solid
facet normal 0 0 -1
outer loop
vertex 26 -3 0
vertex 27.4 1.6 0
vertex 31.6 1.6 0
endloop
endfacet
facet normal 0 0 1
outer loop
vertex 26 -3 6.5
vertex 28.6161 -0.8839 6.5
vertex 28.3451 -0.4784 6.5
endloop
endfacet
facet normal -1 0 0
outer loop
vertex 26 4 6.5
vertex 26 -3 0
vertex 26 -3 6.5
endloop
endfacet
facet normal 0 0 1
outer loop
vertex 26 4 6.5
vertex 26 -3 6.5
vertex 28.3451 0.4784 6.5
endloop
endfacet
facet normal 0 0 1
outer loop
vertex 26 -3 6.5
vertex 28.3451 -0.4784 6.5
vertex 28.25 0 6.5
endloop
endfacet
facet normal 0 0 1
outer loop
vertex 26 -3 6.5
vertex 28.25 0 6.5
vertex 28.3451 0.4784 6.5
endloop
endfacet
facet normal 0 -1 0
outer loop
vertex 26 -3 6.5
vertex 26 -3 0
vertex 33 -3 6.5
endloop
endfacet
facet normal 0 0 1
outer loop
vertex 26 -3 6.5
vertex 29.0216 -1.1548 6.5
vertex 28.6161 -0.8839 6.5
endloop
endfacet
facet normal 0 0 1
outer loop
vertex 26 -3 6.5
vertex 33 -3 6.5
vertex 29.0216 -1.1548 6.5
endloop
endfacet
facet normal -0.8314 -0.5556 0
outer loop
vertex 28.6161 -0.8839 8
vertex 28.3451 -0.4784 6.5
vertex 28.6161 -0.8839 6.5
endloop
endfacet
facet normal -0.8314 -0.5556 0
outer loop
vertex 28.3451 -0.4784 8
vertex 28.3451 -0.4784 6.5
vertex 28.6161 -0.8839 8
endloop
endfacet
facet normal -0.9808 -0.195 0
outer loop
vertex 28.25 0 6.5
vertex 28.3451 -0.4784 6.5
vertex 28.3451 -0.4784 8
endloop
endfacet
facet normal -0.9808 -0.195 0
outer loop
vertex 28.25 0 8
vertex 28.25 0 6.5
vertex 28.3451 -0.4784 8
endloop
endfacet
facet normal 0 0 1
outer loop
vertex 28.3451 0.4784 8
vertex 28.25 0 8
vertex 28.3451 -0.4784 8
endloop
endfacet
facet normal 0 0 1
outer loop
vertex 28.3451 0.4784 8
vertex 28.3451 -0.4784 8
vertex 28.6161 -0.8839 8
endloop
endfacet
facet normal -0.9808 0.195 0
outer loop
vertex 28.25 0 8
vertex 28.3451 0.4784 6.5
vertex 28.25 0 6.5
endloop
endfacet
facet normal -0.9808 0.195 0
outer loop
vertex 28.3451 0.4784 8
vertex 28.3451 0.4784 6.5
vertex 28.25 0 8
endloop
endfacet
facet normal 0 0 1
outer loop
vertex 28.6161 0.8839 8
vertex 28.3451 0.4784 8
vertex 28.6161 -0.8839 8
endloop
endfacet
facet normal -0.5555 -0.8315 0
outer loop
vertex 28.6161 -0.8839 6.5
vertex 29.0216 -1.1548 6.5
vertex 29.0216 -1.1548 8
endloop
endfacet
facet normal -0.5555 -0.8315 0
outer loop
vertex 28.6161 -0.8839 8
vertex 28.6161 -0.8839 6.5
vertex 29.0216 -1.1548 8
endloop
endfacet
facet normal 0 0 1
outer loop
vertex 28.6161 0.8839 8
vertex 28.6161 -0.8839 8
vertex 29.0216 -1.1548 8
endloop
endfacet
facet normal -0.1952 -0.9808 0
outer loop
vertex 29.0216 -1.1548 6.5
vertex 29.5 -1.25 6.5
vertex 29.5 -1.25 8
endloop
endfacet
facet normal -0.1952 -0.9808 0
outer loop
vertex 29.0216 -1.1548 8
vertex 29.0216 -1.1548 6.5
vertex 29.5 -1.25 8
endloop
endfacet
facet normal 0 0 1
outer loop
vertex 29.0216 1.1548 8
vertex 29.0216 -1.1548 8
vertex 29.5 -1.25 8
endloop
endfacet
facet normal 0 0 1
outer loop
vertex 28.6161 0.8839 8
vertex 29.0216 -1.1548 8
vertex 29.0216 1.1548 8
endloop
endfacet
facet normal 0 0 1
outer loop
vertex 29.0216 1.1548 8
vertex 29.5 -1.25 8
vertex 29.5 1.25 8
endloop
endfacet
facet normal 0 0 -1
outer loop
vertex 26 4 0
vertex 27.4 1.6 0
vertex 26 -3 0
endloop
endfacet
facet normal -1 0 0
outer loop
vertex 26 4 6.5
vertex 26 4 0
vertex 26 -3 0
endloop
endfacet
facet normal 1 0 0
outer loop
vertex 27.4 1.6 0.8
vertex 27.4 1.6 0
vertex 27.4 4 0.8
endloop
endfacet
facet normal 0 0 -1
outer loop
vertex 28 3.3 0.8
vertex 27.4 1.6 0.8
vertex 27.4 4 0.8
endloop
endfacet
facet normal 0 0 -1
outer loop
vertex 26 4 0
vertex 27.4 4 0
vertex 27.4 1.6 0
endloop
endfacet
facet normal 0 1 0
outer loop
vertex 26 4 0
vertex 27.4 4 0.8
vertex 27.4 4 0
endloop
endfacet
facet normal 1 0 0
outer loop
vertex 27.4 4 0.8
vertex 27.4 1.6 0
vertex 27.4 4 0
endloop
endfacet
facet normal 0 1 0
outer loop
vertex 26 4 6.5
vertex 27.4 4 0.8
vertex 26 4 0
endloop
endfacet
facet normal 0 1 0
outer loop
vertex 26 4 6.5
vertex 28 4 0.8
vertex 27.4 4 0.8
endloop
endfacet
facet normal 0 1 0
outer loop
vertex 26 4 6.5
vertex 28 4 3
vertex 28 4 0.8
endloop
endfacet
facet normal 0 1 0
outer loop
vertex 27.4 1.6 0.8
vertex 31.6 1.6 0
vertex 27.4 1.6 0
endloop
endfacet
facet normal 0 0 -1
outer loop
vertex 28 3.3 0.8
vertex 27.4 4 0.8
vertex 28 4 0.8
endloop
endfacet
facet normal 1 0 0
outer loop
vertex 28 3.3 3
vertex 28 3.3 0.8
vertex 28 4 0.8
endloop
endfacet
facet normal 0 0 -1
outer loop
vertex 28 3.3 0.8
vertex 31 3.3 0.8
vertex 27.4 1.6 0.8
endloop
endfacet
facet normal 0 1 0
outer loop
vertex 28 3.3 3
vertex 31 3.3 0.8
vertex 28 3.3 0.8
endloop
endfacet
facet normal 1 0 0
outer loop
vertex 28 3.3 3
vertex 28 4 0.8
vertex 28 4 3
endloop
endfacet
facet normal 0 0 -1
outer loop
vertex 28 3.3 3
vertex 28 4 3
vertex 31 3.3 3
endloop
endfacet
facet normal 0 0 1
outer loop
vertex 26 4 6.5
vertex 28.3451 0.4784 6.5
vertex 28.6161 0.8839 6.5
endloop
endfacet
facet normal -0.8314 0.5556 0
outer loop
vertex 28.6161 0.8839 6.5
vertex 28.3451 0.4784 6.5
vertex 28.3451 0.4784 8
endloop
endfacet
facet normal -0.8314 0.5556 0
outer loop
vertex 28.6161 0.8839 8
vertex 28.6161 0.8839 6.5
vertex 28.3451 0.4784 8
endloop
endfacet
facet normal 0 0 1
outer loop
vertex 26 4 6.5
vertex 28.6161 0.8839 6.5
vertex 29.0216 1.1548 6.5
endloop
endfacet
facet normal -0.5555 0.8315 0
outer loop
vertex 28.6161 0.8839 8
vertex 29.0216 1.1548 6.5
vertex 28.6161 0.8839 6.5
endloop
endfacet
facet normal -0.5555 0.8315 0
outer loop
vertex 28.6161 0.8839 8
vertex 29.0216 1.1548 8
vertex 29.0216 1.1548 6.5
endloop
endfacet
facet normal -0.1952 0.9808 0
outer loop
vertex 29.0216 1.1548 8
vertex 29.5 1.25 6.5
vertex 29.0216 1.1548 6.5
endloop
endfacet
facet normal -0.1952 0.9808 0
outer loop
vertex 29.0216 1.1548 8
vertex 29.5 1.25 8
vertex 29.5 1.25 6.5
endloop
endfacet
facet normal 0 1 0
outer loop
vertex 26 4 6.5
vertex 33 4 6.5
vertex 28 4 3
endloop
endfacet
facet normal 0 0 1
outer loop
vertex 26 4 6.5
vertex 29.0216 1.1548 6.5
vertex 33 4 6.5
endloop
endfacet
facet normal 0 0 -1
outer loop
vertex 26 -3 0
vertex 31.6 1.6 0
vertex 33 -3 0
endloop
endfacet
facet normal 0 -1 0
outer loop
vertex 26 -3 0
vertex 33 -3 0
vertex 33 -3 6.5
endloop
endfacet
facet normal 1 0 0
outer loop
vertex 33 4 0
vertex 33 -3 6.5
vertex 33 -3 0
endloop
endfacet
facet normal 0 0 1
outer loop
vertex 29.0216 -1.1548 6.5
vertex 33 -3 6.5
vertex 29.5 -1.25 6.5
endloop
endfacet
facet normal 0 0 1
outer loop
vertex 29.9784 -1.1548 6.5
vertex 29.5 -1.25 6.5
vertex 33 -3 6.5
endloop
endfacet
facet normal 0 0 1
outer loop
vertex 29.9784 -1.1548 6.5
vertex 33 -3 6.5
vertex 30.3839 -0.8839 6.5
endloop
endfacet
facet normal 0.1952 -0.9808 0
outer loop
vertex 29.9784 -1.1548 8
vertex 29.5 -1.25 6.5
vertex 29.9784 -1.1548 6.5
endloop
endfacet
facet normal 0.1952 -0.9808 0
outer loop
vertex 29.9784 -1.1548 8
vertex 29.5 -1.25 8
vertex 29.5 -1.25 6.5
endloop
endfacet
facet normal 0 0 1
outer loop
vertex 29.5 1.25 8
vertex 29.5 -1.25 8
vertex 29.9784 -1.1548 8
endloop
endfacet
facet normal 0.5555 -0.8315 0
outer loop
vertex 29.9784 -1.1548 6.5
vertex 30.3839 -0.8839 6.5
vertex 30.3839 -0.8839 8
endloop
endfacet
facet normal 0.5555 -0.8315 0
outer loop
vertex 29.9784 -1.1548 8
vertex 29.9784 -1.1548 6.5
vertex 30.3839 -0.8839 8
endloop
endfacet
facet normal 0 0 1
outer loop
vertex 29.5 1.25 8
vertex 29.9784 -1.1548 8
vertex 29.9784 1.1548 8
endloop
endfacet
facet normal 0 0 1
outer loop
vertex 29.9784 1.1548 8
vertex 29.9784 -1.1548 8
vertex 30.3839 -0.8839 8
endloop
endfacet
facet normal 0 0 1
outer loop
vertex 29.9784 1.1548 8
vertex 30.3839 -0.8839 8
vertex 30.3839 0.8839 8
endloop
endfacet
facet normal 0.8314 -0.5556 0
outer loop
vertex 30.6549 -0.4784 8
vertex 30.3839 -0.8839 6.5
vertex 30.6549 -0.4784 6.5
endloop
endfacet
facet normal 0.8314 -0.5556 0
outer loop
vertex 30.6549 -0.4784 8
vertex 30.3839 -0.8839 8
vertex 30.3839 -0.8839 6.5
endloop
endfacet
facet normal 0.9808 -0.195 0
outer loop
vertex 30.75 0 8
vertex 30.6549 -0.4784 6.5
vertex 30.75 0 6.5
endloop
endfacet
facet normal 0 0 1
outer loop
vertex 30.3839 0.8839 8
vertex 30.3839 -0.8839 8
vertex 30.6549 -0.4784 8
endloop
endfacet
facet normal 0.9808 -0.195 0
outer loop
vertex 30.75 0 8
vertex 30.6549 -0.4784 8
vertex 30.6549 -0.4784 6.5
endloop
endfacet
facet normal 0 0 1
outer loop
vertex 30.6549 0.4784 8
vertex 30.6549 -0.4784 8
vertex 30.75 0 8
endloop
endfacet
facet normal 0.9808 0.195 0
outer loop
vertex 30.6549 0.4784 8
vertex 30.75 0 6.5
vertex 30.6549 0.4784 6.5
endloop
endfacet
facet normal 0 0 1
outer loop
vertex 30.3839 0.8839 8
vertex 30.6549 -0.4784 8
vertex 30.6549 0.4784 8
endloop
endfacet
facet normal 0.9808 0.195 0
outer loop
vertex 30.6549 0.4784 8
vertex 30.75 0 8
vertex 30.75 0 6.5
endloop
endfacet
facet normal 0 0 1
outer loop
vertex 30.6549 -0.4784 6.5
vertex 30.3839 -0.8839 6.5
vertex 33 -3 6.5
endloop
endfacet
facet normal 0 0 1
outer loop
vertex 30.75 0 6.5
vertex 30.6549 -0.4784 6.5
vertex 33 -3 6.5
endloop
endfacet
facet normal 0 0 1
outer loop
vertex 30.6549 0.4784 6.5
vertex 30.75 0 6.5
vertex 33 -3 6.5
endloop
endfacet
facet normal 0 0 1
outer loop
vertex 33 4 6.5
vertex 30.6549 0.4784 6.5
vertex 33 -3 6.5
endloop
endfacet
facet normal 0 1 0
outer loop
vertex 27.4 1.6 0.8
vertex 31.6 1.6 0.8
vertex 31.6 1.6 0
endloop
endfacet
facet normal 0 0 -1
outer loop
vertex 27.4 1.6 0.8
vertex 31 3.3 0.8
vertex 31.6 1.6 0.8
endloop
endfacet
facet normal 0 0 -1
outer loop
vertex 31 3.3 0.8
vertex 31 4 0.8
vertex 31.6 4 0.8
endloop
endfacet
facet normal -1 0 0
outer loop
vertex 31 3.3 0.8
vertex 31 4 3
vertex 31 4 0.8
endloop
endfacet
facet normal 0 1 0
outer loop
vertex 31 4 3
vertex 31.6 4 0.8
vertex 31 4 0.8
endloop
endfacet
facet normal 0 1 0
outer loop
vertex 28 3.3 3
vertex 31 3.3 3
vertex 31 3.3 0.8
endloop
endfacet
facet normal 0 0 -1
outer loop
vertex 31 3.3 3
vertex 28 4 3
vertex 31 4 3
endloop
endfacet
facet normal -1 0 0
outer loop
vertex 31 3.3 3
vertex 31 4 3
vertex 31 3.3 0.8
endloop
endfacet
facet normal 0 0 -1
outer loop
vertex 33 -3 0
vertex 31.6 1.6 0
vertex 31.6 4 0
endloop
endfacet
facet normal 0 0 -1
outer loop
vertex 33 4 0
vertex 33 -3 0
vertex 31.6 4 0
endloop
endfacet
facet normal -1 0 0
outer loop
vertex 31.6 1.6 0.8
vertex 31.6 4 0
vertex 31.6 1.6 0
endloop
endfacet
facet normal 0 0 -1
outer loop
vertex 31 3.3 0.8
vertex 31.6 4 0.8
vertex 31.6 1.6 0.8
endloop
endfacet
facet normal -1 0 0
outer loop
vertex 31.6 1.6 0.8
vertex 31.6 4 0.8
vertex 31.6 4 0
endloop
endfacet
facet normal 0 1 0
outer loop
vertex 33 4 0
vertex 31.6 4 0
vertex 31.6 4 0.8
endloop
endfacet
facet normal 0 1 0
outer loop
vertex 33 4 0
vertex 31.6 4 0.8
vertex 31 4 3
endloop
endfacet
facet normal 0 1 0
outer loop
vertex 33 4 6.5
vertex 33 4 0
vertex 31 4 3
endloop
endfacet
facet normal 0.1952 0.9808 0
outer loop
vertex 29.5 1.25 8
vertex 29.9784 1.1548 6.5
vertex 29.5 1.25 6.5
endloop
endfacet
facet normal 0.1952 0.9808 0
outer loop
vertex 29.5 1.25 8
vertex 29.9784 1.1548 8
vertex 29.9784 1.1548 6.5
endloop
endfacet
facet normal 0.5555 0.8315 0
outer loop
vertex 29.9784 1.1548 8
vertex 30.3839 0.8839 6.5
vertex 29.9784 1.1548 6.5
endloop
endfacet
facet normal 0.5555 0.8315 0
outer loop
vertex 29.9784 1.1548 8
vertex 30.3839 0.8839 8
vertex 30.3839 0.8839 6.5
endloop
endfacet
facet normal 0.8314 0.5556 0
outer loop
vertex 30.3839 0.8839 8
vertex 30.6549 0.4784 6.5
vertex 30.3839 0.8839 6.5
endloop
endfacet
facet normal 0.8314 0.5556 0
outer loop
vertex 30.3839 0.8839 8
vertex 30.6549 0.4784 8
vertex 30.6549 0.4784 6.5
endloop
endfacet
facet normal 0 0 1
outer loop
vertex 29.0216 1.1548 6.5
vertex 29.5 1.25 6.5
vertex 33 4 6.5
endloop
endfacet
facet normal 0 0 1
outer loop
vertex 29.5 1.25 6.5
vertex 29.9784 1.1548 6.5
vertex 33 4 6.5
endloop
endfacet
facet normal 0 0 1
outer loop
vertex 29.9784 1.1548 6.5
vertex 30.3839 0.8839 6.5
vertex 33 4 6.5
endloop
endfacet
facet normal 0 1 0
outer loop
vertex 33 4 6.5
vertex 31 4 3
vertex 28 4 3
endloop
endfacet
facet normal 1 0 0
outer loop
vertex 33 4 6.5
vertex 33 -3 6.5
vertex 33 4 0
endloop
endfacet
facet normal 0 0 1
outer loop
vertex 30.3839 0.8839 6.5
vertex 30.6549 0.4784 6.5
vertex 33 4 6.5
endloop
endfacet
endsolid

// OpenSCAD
// file: lib/lib.scad
// Shared helpers. Include AFTER params.scad (needs TOL, M3_* etc.).
$fa = 4; $fs = 0.5;

module rrect(size, r) {            // 2D rounded rectangle, centred
    r2 = min(r, min(size[0], size[1]) / 2 - 0.001);
    offset(r = r2) square([size[0] - 2 * r2, size[1] - 2 * r2], center = true);
}
module rbox(size, r, center_xy = true) {   // box with rounded vertical edges
    translate(center_xy ? [0, 0, 0] : [size[0] / 2, size[1] / 2, 0])
        linear_extrude(size[2]) rrect([size[0], size[1]], r);
}
module rbox_at(x0, x1, y0, y1, z0, z1, r = 0.01) {
    translate([(x0 + x1) / 2, (y0 + y1) / 2, z0]) rbox([x1 - x0, y1 - y0, z1 - z0], r);
}
module box_at(x0, x1, y0, y1, z0, z1) { translate([x0, y0, z0]) cube([x1 - x0, y1 - y0, z1 - z0]); }

module ring(ro, ri, h) { difference() { cylinder(r = ro, h = h); translate([0, 0, -1]) cylinder(r = ri, h = h + 2); } }
module ring_sector(ro, ri, h, a0, a1) {
    intersection() {
        ring(ro, ri, h);
        linear_extrude(h) polygon(concat([[0, 0]], [for (a = [a0 : (a1 - a0) / 24 : a1]) 2 * ro * [cos(a), sin(a)]]));
    }
}
// teardrop hole along an axis lying horizontal (axis = Y after rotation), printable w/o support
module teardrop2d(d) { union() { circle(d = d); rotate(45) square(d / 2); } }
// vertical heat-set insert hole, opening at z=0 going +z (depth l)
module insert_hole(l = M3_INSERT_L) { translate([0, 0, -EPS]) cylinder(d = M3_INSERT_D, h = l + EPS); }
module m3_clear(l) { translate([0, 0, -EPS]) cylinder(d = M3_CLEAR, h = l + 2 * EPS); }
module m3_csk(l) {  // countersunk clearance from z=0 upward, head at z=0 side
    translate([0, 0, -EPS]) { cylinder(d = M3_CLEAR, h = l + 2 * EPS); cylinder(d1 = 6.4, d2 = M3_CLEAR, h = 1.7); }
}
module card2d() { rrect([CARD_L, CARD_W], CARD_R); }
module card_at(cy, z) { translate([0, cy, z]) linear_extrude(CARD_T) card2d(); }

// ---- gears ----
function _inv(a) = tan(a) - a * PI_ / 180;           // involute function, a in deg
function _invpt(rb, r, ang0, s) = let(al = acos(rb / r), th = ang0 - s * (_inv(al) * 180 / PI_)) [r * cos(th), r * sin(th)];
module involute_gear2d(m, z, pa = 20, clearance = 0.05) {
    rp = m * z / 2; rb = rp * cos(pa); ra = rp + m - clearance; rf = rp - 1.25 * m;
    half = 90 / z + _inv(pa) * 180 / PI_;            // tooth half-angle at base (deg)
    n = 8;
    rs = [for (i = [0 : n]) max(rb, rf) + (ra - max(rb, rf)) * i / n];
    union() {
        circle(r = rf, $fn = z * 4);
        for (k = [0 : z - 1]) rotate(k * 360 / z) polygon(concat(
            [[rf * cos(-half), rf * sin(-half)]],
            [for (r = rs) let(p = _invpt(rb, r, half, 1)) [p[0], -p[1]]],
            [for (i = [n : -1 : 0]) _invpt(rb, rs[i], half, 1)],
            [[rf * cos(half), rf * sin(half)]]));
    }
}
// straight gear rack (2D in XY: teeth along +x, pointing -y, pitch line at y=0)
module gear_rack2d(m, len, back = 3) {
    p = PI_ * m; ad = m; de = 1.25 * m; t = tan(20);
    n = ceil(len / p) + 1;
    intersection() {
        union() {
            translate([0, de]) square([len, back]);
            for (i = [0 : n]) if (i * p - p / 4 - (p / 4 + de * t) >= 0 && i * p + de * t <= len) translate([i * p - p / 4, 0]) polygon([
                [-(p / 4 + de * t), de + 0.01], [p / 4 + de * t + 0.01, de + 0.01],
                [p / 4 - ad * t, -ad], [-(p / 4 - ad * t), -ad] ]);
        }
        translate([0, -ad - 1]) square([len, ad + de + back + 2]);
    }
}
// GT2 belt-tooth profile ring (teeth outward), 2D
module gt2_ring2d(n, r_land, ri) {
    union() {
        difference() { circle(r = r_land + 0.01, $fn = n * 2); circle(r = ri, $fn = n * 2); }
        for (k = [0 : n - 1]) rotate(k * 360 / n)
            translate([r_land, 0]) hull() { translate([-0.2, 0]) square([0.2, 1.0], center = true); translate([0.25, 0]) circle(r = 0.5, $fn = 12); }
    }
}
// main file
// Hall-sensor post: holds the A3144 0.6 mm under the magnet (magnet at turret 0 deg),
// inside the bearing ID. Pegs into the deck. Print: upright, no supports.
include <params.scad>
include <lib/lib.scad>
HP_Z1 = TURNTABLE_Z - 3.0;      // sensor face 0.6 below the 0.9 mm magnet protrusion
module hall_post() difference() {
    union() {
        translate([HALL_R, 0, DECK_Z + DECK_T]) box_at(-3.5, 3.5, -4, 3, 0, HP_Z1 - DECK_Z - DECK_T);
        translate([HALL_R, 0, DECK_Z + 0.5]) cylinder(d = PEG_D, h = 2);
    }
    translate([HALL_R, -2.2, HP_Z1 - 0.8]) box_at(-2.1, 2.1, -2, 0.6, 0, 1);      // lead groove
    translate([HALL_R, -4.5, HP_Z1 - 3]) box_at(-1.5, 1.5, 0, 1.2, 0, 4);         // lead exit
}
module hall_post_print() translate([0, 0, HP_Z1]) rotate([180, 0, 0]) hall_post();   // sensor face on the bed
hall_post_print();
